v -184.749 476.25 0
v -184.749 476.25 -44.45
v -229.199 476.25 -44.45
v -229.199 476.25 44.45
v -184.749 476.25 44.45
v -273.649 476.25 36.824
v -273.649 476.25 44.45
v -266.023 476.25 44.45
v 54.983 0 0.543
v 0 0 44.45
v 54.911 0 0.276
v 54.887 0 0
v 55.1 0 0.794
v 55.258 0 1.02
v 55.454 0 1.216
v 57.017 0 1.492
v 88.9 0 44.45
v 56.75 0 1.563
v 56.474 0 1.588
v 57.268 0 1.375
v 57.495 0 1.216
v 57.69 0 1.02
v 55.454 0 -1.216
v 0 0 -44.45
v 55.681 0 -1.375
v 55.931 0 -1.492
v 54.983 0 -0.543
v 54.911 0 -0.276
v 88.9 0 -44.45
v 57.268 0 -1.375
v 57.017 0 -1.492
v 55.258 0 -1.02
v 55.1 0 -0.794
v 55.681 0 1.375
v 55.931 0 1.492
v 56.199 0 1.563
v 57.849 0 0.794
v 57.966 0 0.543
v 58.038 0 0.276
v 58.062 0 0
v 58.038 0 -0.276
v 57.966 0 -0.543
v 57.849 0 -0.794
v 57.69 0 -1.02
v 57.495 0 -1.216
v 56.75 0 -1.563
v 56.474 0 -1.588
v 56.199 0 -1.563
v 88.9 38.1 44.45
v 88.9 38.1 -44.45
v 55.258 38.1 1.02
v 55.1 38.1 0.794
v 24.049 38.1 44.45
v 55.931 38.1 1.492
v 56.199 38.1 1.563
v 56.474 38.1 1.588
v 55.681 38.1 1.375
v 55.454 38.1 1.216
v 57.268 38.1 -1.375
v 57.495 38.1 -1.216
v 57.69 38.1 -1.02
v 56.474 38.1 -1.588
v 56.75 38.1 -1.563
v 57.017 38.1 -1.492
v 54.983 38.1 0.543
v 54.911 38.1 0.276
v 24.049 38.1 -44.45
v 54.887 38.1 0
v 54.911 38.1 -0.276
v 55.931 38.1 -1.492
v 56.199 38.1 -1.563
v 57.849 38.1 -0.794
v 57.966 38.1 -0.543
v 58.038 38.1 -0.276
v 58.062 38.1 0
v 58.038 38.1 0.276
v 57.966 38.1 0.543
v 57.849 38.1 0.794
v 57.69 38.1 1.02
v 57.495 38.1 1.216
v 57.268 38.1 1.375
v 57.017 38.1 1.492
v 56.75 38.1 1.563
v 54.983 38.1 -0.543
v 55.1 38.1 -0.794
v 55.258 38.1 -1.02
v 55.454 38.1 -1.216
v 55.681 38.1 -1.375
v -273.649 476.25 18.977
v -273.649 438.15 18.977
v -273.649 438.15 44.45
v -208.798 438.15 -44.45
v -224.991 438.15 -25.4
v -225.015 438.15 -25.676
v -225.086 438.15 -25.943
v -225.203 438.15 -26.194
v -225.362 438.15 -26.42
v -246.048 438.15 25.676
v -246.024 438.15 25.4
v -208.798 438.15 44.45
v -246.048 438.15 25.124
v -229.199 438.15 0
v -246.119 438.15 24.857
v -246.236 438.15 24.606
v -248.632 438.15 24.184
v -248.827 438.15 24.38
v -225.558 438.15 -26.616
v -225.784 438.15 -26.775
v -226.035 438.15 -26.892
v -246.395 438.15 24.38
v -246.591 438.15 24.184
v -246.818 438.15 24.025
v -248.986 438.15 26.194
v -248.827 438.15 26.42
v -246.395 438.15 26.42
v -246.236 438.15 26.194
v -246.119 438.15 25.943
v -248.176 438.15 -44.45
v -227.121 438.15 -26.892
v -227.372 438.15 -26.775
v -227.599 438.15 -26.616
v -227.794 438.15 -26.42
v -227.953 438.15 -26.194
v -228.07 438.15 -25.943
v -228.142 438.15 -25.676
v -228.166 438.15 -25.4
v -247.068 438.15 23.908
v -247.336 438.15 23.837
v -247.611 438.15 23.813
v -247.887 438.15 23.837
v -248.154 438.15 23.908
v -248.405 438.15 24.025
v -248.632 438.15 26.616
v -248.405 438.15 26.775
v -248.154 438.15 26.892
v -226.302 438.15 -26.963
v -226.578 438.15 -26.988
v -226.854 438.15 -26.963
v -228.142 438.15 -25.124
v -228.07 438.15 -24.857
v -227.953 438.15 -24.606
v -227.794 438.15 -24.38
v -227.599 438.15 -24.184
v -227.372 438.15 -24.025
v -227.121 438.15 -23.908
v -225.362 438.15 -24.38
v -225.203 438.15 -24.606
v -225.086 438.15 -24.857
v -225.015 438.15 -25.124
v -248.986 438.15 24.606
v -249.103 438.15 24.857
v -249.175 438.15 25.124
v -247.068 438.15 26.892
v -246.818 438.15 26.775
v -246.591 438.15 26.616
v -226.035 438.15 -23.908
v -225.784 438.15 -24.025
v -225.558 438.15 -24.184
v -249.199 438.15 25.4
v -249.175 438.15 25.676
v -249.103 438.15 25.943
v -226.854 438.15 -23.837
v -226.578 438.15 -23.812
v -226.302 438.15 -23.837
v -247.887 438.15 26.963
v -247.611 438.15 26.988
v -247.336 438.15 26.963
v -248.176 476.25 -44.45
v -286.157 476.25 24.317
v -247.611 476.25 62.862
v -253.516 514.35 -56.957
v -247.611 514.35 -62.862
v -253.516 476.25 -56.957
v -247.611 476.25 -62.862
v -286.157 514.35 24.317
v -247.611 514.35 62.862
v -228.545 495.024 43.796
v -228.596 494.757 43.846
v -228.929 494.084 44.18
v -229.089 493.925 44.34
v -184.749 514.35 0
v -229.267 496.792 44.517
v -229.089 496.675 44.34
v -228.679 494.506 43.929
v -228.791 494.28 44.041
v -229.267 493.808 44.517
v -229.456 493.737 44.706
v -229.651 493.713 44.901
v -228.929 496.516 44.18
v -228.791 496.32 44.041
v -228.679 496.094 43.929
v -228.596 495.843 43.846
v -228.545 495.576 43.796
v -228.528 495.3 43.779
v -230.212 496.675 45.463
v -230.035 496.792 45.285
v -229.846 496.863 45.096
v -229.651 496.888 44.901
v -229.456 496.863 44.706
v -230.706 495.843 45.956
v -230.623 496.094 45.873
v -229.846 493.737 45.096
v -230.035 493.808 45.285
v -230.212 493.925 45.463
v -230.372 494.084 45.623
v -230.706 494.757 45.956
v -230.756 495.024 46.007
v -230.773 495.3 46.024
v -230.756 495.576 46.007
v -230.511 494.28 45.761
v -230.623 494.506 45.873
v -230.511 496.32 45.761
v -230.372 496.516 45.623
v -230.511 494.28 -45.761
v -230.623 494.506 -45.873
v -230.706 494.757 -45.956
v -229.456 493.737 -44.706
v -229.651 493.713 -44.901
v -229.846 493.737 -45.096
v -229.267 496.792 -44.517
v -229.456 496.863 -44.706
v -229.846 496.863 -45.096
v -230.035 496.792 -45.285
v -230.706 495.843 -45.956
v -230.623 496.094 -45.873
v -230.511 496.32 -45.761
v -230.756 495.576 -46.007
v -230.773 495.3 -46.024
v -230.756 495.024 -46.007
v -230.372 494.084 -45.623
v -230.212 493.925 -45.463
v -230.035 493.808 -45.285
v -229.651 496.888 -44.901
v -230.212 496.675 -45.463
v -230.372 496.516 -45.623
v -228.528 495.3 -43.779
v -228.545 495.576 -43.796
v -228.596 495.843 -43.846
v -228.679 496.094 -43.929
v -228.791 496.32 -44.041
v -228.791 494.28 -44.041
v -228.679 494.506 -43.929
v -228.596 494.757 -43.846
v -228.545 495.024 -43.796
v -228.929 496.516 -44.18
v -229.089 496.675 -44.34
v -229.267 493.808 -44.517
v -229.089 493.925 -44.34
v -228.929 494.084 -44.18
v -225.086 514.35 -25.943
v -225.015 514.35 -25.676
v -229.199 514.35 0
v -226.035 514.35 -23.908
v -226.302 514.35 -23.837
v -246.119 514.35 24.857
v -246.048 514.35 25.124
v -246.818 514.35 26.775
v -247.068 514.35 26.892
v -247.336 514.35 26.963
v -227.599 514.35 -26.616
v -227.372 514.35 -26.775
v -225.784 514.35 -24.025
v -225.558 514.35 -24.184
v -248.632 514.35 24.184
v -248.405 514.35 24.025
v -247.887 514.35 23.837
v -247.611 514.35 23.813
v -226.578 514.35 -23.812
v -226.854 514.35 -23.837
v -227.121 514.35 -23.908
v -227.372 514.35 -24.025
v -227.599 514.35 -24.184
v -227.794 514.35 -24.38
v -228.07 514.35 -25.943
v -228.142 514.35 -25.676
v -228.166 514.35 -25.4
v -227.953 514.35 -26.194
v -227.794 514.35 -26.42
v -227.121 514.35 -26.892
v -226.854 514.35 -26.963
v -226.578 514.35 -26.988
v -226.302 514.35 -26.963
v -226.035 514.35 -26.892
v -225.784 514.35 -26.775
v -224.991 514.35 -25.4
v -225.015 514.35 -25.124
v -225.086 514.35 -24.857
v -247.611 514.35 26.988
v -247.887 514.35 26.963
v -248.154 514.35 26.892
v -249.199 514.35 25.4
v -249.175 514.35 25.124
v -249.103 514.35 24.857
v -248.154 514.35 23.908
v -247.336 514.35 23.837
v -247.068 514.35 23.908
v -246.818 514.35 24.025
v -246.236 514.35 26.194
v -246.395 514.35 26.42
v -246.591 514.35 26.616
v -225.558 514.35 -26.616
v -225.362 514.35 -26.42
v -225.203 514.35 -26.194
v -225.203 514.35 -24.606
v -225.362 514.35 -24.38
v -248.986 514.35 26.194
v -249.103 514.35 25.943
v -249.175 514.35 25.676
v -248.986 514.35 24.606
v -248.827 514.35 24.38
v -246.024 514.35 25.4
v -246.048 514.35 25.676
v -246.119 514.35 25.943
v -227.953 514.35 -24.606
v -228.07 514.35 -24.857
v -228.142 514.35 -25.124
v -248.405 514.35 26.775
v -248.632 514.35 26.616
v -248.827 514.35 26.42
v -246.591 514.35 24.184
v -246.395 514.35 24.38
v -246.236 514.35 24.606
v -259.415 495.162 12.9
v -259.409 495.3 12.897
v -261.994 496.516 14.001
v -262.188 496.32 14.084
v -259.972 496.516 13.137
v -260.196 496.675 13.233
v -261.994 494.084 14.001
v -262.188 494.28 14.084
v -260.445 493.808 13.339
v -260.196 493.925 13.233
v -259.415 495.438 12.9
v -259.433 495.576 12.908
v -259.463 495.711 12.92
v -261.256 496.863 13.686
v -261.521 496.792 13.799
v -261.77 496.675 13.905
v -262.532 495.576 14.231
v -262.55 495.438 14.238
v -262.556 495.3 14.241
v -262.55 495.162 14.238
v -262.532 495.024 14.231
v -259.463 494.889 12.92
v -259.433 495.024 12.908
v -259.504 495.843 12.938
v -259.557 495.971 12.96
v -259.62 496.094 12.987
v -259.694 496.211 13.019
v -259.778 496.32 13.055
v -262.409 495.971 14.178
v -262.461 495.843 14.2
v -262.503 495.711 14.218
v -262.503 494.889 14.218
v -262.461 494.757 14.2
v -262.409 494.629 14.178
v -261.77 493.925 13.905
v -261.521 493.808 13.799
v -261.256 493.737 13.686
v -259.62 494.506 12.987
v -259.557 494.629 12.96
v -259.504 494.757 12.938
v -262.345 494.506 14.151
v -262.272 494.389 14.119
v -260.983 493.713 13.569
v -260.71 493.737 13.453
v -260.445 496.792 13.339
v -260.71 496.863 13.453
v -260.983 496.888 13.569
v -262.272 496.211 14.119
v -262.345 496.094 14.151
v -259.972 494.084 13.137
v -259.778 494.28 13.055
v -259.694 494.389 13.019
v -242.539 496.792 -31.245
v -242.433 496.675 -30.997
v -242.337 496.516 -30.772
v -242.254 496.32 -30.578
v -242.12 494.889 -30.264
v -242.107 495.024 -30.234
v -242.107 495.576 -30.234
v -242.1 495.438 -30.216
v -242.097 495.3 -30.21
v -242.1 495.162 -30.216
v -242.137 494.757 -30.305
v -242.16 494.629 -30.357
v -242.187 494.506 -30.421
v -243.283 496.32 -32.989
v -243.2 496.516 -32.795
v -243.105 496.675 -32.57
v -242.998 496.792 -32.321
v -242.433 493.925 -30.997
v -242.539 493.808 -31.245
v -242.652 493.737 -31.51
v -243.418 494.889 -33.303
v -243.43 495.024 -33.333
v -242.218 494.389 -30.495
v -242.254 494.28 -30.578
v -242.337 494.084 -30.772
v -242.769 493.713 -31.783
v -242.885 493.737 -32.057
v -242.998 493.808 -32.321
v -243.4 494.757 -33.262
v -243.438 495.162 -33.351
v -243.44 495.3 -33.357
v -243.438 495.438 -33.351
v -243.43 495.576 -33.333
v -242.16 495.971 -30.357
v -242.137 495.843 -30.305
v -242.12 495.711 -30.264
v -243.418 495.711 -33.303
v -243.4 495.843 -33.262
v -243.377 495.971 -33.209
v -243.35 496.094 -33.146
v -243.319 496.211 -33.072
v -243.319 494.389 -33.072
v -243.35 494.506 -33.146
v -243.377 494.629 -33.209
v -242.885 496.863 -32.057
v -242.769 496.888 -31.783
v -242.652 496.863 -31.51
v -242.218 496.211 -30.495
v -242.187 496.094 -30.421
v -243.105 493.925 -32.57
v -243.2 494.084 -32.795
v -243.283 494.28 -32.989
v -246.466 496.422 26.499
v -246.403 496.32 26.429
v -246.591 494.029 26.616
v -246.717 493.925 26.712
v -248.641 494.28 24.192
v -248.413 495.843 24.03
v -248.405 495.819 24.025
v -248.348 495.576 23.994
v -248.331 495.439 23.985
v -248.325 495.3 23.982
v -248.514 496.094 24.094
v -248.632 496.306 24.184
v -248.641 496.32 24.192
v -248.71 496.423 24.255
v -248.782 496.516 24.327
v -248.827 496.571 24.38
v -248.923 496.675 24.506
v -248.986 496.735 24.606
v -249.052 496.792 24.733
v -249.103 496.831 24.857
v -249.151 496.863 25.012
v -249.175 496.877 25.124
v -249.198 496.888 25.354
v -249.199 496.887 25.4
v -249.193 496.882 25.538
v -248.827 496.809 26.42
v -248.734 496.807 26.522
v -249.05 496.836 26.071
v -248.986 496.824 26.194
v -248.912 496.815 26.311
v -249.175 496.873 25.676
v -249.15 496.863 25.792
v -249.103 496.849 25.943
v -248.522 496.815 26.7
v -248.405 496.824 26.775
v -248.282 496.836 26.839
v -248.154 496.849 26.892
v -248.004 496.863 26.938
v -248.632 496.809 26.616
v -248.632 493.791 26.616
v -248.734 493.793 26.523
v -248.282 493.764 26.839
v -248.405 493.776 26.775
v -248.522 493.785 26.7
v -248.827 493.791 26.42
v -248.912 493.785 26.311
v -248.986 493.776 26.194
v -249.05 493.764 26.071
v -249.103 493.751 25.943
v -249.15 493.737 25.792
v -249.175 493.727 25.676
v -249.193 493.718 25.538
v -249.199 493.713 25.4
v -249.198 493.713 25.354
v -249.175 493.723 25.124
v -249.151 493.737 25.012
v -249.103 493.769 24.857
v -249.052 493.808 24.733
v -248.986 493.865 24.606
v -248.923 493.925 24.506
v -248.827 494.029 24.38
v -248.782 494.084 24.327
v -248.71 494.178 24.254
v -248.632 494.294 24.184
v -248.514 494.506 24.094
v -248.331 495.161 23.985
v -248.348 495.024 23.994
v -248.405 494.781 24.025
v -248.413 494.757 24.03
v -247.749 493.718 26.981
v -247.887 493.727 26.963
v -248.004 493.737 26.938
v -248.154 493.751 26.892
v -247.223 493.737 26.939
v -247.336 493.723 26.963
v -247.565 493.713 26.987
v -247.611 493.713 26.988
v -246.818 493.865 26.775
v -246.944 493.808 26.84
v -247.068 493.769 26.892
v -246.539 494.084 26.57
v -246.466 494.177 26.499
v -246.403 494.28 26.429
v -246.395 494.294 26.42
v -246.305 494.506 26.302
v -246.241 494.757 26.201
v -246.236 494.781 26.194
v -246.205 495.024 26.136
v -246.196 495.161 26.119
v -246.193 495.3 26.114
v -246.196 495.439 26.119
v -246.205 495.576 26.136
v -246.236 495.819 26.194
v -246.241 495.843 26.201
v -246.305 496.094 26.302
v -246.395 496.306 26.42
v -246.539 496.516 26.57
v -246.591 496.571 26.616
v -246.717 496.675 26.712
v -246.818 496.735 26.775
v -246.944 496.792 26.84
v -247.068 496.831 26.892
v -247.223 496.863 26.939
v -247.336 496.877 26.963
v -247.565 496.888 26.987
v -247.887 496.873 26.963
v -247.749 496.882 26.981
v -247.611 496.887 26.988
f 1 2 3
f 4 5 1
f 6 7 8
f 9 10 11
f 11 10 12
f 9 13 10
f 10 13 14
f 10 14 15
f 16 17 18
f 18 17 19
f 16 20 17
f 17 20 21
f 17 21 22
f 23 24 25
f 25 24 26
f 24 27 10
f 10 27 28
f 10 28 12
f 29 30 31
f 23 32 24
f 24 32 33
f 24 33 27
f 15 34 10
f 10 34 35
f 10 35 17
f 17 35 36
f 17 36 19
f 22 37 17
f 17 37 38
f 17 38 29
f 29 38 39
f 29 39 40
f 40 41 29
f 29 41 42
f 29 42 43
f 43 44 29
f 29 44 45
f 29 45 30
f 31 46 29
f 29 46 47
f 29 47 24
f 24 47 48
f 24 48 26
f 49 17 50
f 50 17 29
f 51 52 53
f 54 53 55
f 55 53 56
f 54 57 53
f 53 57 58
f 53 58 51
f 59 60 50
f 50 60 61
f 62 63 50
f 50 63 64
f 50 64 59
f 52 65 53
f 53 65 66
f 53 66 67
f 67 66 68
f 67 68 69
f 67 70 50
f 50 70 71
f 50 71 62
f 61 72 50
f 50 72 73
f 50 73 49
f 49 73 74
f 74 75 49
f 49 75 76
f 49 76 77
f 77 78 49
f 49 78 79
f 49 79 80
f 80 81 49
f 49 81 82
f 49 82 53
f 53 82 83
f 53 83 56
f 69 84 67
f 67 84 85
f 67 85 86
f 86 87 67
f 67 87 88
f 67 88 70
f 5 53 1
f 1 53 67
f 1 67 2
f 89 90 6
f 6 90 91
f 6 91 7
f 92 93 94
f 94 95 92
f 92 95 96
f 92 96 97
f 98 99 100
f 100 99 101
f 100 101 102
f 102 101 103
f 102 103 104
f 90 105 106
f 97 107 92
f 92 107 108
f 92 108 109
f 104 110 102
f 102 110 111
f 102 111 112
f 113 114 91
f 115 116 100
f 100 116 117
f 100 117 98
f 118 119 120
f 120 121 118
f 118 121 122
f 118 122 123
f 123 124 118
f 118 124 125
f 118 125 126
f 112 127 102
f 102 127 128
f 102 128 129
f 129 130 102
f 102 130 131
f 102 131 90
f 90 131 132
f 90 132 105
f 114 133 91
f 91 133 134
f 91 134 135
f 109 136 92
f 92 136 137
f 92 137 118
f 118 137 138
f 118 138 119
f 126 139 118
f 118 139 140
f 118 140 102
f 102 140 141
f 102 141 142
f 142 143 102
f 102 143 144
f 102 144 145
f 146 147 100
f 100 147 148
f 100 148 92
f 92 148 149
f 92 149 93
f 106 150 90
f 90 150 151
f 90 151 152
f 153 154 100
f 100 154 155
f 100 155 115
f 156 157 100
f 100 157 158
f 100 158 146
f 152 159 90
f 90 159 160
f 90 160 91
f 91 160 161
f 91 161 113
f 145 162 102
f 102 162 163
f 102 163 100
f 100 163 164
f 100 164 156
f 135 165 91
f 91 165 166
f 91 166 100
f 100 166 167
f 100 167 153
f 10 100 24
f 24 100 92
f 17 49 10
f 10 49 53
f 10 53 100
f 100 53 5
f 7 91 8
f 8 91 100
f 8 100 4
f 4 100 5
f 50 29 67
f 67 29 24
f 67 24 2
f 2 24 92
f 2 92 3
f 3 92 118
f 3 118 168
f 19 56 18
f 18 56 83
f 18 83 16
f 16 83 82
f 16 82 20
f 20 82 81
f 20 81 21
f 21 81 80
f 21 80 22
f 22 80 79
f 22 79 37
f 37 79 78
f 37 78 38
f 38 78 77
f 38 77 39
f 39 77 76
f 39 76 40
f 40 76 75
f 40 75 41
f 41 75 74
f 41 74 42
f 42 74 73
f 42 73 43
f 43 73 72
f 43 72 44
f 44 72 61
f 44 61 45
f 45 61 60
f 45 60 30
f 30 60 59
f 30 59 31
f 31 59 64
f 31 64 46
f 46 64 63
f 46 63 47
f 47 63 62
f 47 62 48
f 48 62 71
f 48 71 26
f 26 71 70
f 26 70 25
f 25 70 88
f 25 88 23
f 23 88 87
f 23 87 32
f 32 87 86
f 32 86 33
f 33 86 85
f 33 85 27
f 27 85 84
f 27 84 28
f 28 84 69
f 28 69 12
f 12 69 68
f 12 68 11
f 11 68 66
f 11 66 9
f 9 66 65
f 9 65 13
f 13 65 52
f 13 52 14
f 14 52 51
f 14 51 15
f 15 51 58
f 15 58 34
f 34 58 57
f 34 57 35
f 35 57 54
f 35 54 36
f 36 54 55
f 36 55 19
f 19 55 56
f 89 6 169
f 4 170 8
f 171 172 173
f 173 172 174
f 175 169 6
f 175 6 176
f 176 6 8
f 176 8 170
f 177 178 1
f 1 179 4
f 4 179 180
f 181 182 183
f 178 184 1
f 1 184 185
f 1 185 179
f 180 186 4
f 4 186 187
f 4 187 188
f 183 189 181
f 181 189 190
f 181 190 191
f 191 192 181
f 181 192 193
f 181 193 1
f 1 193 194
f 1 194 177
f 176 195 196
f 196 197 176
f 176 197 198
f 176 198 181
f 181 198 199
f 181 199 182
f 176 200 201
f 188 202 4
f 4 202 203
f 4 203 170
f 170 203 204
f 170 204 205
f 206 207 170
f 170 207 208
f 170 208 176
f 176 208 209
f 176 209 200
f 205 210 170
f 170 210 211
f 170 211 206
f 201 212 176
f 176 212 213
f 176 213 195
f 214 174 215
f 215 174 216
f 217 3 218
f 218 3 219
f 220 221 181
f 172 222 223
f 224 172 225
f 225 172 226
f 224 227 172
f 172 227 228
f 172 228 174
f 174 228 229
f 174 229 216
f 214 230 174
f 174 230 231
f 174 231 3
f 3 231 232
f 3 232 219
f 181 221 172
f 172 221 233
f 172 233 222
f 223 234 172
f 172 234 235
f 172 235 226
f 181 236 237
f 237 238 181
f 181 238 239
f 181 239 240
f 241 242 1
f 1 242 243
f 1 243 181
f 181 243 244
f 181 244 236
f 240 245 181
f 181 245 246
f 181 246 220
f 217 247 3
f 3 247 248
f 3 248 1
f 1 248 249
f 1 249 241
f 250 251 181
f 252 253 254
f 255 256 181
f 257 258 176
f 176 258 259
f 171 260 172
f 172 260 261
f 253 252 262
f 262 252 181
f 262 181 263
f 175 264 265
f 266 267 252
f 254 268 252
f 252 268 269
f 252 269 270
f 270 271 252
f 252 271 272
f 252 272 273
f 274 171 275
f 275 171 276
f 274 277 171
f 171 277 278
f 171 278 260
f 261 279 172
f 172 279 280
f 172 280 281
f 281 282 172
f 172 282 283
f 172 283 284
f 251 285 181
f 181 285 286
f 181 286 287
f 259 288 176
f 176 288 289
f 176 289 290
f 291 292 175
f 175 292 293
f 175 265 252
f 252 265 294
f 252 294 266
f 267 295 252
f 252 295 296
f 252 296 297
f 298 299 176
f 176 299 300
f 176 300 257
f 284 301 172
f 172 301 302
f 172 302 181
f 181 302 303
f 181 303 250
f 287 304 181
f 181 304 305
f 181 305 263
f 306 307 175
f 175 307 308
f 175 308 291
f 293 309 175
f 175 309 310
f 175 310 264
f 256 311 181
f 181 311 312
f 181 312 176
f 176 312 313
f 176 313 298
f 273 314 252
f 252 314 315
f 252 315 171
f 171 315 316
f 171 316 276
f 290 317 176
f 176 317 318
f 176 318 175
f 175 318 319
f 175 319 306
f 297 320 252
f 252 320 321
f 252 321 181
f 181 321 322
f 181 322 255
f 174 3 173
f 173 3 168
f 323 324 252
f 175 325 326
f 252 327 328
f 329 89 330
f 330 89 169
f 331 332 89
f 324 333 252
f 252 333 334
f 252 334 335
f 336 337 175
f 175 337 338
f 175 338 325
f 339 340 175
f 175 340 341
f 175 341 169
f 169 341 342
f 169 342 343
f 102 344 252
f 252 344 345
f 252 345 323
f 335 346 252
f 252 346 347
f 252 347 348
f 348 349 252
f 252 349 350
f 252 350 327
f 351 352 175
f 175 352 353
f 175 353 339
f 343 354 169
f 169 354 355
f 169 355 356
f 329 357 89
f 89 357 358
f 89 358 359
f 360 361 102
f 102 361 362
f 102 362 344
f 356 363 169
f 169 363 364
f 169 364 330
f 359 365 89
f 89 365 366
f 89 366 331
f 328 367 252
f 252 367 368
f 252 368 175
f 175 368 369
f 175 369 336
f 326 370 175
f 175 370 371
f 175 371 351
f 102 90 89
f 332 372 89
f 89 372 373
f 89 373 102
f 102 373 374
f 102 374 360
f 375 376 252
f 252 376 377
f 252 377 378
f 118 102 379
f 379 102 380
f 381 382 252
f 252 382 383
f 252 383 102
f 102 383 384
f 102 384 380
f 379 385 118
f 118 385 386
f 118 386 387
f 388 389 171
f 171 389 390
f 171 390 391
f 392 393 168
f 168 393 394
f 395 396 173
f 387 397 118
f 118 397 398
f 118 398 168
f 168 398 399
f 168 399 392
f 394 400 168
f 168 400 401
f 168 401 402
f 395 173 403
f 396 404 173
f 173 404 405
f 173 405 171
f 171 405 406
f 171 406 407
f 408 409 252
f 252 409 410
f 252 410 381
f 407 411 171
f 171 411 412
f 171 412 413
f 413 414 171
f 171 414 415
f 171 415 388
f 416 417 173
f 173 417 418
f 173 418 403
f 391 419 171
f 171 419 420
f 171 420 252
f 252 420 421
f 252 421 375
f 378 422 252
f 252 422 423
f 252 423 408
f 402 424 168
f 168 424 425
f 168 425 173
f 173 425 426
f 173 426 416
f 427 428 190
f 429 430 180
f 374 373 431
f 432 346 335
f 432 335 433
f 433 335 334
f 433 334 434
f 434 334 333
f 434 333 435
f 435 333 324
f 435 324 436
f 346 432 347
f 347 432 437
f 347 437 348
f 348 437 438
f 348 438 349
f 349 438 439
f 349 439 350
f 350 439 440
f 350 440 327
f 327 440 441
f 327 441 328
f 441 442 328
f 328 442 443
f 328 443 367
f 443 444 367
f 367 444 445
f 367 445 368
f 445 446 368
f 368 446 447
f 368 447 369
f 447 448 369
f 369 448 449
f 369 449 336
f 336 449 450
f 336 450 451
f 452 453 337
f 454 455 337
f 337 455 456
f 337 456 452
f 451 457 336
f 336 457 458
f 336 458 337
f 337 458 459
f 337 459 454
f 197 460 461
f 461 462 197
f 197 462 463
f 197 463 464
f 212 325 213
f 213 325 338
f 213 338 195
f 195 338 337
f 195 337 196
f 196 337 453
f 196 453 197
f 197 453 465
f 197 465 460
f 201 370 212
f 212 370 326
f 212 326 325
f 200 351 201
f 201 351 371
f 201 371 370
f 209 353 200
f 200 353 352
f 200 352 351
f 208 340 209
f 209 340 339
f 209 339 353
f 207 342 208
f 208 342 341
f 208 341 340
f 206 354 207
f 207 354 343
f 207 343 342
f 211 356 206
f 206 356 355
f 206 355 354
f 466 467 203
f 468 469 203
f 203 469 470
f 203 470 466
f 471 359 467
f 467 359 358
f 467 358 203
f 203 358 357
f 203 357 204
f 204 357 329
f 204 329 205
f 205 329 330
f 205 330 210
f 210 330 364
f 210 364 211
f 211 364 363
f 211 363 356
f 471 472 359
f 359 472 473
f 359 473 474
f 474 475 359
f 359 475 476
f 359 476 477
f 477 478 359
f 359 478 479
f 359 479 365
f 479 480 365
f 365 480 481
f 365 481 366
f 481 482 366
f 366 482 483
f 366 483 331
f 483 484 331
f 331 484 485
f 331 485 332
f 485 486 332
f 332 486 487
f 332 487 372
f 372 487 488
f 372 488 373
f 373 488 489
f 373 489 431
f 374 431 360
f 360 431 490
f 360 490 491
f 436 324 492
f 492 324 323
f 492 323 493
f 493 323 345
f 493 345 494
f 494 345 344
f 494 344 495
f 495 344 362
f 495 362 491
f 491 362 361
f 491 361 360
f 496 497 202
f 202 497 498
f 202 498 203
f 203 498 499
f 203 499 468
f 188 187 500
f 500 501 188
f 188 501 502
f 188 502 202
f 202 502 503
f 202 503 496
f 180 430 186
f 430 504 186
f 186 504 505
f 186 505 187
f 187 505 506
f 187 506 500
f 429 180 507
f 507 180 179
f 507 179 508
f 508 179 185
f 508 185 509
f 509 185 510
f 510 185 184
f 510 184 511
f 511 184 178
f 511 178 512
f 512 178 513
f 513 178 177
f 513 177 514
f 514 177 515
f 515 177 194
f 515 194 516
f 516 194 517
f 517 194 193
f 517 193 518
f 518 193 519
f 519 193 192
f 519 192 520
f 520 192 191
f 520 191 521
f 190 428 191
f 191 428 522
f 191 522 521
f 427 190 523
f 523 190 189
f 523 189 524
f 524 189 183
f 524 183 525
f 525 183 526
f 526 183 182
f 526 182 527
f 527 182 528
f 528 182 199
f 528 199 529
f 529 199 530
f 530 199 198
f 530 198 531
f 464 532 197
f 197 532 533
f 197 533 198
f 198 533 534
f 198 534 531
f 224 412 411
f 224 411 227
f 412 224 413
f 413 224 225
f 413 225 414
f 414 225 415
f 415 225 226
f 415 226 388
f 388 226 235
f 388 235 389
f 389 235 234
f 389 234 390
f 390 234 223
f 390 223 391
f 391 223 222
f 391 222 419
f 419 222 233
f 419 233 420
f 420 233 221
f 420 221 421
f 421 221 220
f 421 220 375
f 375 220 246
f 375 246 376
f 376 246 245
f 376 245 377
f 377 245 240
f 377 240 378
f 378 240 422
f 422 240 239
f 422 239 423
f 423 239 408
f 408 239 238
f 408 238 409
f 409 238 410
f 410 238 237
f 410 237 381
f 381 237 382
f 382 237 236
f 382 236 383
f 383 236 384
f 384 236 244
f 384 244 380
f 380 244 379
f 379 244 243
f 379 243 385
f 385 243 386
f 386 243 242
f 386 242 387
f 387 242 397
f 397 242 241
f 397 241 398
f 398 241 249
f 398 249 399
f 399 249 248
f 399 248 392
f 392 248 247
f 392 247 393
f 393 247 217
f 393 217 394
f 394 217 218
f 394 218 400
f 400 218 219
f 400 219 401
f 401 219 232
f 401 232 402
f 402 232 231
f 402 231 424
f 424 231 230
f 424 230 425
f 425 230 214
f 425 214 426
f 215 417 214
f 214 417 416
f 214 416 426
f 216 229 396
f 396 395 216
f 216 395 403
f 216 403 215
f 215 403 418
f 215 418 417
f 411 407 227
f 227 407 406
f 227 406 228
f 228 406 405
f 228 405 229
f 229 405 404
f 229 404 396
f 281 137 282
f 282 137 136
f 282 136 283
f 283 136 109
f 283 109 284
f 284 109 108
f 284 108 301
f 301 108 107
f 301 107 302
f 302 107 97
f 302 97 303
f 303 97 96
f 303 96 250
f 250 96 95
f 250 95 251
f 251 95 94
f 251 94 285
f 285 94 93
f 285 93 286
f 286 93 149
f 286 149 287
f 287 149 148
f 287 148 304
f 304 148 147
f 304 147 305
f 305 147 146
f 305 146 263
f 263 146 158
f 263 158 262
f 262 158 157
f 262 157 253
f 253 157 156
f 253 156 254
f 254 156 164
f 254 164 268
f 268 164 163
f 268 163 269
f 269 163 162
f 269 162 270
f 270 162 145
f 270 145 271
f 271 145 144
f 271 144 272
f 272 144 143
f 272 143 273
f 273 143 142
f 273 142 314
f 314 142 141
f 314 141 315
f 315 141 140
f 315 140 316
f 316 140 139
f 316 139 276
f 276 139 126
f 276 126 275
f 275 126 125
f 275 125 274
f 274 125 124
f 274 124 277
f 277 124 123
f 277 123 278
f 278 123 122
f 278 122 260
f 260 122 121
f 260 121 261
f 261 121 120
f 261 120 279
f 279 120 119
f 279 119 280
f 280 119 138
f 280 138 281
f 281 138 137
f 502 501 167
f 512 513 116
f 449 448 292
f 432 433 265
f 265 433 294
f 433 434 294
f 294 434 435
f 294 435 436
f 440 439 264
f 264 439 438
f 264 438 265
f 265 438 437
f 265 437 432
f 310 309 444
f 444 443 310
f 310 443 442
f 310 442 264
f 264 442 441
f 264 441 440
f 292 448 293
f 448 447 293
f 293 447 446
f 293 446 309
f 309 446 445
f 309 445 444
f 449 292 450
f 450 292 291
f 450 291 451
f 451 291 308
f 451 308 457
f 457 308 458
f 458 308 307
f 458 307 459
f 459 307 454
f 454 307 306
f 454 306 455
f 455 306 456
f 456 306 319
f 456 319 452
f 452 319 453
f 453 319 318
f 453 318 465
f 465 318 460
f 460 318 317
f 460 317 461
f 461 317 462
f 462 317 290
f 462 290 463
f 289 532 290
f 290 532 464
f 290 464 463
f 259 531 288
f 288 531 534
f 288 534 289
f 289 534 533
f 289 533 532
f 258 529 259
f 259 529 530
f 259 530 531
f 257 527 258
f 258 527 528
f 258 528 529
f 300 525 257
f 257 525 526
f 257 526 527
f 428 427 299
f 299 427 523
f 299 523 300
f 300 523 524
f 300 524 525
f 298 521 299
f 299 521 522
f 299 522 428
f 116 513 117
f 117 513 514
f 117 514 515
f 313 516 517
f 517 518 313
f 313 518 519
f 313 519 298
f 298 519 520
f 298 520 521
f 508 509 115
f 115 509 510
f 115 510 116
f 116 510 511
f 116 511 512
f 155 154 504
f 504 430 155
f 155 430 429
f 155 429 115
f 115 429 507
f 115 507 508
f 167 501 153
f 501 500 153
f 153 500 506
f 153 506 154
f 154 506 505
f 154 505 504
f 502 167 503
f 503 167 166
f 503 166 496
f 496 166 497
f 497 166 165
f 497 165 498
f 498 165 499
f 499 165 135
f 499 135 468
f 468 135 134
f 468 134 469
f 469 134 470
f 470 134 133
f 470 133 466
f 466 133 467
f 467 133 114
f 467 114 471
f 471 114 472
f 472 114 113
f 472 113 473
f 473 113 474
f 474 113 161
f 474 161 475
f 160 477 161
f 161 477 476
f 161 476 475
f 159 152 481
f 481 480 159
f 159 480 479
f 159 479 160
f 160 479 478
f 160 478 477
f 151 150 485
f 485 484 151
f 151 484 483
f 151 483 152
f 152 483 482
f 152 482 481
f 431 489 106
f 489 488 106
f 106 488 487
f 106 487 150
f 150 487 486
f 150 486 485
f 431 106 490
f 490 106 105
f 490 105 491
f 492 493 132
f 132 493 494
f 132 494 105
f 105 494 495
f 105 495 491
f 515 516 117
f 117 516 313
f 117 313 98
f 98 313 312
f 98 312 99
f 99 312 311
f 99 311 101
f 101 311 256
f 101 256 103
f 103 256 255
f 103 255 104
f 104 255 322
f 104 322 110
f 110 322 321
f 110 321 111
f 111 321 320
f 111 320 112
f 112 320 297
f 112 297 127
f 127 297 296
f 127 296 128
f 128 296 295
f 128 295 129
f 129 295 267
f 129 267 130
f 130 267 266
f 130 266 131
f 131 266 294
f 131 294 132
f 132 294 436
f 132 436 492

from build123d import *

# Parameters (mm, degrees)
BOSS_EXTRUDE1_DEPTH          = 44.45
F_1_8_0_125_DIAMETER_HOLE1_D = 3.175
BOSS_EXTRUDE2_DEPTH          = 38.1
CUT_EXTRUDE1_DEPTH           = 541.666761283
CUT_EXTRUDE1_DEPTH_BACK      = 541.666761283
F_1_8_0_125_DIAMETER_HOLE2_D = 3.175
F_1_8_0_125_DIAMETER_HOLE3_D = 3.175
F_1_8_0_125_DIAMETER_HOLE4_D = 3.175


with BuildPart() as part:
    # Sketch1 → Boss-Extrude1 (new, symmetric)
    with BuildSketch(Plane.XY):
        Polygon((0, 0), (-208.79812848, 438.15), (-273.64947152, 438.15), (-273.64947152, 476.25), (-184.74947152, 476.25), (24.04865696, 38.1), (88.9, 38.1), (88.9, 0), align=None)
    extrude(amount=BOSS_EXTRUDE1_DEPTH, both=True)

    # 1/8 (0.125) Diameter Hole1 (through all)
    with Locations(Plane(origin=(56.47432848, 38.1, 0), x_dir=(0, 0, 1), z_dir=(0, 1, 0))):
        with Locations((0, 0)):
            Hole(F_1_8_0_125_DIAMETER_HOLE1_D / 2)

    # Sketch4 → Boss-Extrude2 (add)
    with BuildSketch(Plane(origin=(0, 476.25, 0), x_dir=(1, 0, 0), z_dir=(0, 1, 0))):
        Polygon((-247.611264367, 62.861792847), (-184.74947152, 0), (-247.611264367, -62.861792847), (-310.473057215, 0), align=None)
    extrude(amount=BOSS_EXTRUDE2_DEPTH)

    # Sketch6 → Cut-Extrude1 (cut, two sides: drawn at the far end of the back side and taken through both)
    with BuildSketch(Plane.XZ.offset(-438.15).offset(-CUT_EXTRUDE1_DEPTH_BACK)):
        Polygon((-310.473057215, 34.697981215), (-229.19947152, 0), (-310.473057215, -190.368300991), align=None)
    extrude(amount=CUT_EXTRUDE1_DEPTH + CUT_EXTRUDE1_DEPTH_BACK, mode=Mode.SUBTRACT)

    # 1/8 (0.125) Diameter Hole2 (through all)
    with Locations(Plane(origin=(-92.37473576, 0, -92.37473576), x_dir=(0.707106781186549, 0, -0.707106781186546), z_dir=(0.707106781186546, 0, 0.707106781186549))):
        with Locations((-194.137604132, 495.3)):
            Hole(F_1_8_0_125_DIAMETER_HOLE2_D / 2)

    # 1/8 (0.125) Diameter Hole3 (through all)
    with Locations(Plane(origin=(-92.37473576, 0, 92.37473576), x_dir=(-0.707106781186549, 0, -0.707106781186546), z_dir=(0.707106781186546, 0, -0.707106781186549))):
        with Locations((194.137604132, 495.3)):
            Hole(F_1_8_0_125_DIAMETER_HOLE3_D / 2)

    # 1/8 (0.125) Diameter Hole4 (through all)
    with Locations(Plane(origin=(0, 438.15, 0), x_dir=(-1, 0, 0), z_dir=(0, -1, 0))):
        with Locations((247.611264367, -25.4), (226.57812848, 25.4)):
            Hole(F_1_8_0_125_DIAMETER_HOLE4_D / 2)


solid = part.part
